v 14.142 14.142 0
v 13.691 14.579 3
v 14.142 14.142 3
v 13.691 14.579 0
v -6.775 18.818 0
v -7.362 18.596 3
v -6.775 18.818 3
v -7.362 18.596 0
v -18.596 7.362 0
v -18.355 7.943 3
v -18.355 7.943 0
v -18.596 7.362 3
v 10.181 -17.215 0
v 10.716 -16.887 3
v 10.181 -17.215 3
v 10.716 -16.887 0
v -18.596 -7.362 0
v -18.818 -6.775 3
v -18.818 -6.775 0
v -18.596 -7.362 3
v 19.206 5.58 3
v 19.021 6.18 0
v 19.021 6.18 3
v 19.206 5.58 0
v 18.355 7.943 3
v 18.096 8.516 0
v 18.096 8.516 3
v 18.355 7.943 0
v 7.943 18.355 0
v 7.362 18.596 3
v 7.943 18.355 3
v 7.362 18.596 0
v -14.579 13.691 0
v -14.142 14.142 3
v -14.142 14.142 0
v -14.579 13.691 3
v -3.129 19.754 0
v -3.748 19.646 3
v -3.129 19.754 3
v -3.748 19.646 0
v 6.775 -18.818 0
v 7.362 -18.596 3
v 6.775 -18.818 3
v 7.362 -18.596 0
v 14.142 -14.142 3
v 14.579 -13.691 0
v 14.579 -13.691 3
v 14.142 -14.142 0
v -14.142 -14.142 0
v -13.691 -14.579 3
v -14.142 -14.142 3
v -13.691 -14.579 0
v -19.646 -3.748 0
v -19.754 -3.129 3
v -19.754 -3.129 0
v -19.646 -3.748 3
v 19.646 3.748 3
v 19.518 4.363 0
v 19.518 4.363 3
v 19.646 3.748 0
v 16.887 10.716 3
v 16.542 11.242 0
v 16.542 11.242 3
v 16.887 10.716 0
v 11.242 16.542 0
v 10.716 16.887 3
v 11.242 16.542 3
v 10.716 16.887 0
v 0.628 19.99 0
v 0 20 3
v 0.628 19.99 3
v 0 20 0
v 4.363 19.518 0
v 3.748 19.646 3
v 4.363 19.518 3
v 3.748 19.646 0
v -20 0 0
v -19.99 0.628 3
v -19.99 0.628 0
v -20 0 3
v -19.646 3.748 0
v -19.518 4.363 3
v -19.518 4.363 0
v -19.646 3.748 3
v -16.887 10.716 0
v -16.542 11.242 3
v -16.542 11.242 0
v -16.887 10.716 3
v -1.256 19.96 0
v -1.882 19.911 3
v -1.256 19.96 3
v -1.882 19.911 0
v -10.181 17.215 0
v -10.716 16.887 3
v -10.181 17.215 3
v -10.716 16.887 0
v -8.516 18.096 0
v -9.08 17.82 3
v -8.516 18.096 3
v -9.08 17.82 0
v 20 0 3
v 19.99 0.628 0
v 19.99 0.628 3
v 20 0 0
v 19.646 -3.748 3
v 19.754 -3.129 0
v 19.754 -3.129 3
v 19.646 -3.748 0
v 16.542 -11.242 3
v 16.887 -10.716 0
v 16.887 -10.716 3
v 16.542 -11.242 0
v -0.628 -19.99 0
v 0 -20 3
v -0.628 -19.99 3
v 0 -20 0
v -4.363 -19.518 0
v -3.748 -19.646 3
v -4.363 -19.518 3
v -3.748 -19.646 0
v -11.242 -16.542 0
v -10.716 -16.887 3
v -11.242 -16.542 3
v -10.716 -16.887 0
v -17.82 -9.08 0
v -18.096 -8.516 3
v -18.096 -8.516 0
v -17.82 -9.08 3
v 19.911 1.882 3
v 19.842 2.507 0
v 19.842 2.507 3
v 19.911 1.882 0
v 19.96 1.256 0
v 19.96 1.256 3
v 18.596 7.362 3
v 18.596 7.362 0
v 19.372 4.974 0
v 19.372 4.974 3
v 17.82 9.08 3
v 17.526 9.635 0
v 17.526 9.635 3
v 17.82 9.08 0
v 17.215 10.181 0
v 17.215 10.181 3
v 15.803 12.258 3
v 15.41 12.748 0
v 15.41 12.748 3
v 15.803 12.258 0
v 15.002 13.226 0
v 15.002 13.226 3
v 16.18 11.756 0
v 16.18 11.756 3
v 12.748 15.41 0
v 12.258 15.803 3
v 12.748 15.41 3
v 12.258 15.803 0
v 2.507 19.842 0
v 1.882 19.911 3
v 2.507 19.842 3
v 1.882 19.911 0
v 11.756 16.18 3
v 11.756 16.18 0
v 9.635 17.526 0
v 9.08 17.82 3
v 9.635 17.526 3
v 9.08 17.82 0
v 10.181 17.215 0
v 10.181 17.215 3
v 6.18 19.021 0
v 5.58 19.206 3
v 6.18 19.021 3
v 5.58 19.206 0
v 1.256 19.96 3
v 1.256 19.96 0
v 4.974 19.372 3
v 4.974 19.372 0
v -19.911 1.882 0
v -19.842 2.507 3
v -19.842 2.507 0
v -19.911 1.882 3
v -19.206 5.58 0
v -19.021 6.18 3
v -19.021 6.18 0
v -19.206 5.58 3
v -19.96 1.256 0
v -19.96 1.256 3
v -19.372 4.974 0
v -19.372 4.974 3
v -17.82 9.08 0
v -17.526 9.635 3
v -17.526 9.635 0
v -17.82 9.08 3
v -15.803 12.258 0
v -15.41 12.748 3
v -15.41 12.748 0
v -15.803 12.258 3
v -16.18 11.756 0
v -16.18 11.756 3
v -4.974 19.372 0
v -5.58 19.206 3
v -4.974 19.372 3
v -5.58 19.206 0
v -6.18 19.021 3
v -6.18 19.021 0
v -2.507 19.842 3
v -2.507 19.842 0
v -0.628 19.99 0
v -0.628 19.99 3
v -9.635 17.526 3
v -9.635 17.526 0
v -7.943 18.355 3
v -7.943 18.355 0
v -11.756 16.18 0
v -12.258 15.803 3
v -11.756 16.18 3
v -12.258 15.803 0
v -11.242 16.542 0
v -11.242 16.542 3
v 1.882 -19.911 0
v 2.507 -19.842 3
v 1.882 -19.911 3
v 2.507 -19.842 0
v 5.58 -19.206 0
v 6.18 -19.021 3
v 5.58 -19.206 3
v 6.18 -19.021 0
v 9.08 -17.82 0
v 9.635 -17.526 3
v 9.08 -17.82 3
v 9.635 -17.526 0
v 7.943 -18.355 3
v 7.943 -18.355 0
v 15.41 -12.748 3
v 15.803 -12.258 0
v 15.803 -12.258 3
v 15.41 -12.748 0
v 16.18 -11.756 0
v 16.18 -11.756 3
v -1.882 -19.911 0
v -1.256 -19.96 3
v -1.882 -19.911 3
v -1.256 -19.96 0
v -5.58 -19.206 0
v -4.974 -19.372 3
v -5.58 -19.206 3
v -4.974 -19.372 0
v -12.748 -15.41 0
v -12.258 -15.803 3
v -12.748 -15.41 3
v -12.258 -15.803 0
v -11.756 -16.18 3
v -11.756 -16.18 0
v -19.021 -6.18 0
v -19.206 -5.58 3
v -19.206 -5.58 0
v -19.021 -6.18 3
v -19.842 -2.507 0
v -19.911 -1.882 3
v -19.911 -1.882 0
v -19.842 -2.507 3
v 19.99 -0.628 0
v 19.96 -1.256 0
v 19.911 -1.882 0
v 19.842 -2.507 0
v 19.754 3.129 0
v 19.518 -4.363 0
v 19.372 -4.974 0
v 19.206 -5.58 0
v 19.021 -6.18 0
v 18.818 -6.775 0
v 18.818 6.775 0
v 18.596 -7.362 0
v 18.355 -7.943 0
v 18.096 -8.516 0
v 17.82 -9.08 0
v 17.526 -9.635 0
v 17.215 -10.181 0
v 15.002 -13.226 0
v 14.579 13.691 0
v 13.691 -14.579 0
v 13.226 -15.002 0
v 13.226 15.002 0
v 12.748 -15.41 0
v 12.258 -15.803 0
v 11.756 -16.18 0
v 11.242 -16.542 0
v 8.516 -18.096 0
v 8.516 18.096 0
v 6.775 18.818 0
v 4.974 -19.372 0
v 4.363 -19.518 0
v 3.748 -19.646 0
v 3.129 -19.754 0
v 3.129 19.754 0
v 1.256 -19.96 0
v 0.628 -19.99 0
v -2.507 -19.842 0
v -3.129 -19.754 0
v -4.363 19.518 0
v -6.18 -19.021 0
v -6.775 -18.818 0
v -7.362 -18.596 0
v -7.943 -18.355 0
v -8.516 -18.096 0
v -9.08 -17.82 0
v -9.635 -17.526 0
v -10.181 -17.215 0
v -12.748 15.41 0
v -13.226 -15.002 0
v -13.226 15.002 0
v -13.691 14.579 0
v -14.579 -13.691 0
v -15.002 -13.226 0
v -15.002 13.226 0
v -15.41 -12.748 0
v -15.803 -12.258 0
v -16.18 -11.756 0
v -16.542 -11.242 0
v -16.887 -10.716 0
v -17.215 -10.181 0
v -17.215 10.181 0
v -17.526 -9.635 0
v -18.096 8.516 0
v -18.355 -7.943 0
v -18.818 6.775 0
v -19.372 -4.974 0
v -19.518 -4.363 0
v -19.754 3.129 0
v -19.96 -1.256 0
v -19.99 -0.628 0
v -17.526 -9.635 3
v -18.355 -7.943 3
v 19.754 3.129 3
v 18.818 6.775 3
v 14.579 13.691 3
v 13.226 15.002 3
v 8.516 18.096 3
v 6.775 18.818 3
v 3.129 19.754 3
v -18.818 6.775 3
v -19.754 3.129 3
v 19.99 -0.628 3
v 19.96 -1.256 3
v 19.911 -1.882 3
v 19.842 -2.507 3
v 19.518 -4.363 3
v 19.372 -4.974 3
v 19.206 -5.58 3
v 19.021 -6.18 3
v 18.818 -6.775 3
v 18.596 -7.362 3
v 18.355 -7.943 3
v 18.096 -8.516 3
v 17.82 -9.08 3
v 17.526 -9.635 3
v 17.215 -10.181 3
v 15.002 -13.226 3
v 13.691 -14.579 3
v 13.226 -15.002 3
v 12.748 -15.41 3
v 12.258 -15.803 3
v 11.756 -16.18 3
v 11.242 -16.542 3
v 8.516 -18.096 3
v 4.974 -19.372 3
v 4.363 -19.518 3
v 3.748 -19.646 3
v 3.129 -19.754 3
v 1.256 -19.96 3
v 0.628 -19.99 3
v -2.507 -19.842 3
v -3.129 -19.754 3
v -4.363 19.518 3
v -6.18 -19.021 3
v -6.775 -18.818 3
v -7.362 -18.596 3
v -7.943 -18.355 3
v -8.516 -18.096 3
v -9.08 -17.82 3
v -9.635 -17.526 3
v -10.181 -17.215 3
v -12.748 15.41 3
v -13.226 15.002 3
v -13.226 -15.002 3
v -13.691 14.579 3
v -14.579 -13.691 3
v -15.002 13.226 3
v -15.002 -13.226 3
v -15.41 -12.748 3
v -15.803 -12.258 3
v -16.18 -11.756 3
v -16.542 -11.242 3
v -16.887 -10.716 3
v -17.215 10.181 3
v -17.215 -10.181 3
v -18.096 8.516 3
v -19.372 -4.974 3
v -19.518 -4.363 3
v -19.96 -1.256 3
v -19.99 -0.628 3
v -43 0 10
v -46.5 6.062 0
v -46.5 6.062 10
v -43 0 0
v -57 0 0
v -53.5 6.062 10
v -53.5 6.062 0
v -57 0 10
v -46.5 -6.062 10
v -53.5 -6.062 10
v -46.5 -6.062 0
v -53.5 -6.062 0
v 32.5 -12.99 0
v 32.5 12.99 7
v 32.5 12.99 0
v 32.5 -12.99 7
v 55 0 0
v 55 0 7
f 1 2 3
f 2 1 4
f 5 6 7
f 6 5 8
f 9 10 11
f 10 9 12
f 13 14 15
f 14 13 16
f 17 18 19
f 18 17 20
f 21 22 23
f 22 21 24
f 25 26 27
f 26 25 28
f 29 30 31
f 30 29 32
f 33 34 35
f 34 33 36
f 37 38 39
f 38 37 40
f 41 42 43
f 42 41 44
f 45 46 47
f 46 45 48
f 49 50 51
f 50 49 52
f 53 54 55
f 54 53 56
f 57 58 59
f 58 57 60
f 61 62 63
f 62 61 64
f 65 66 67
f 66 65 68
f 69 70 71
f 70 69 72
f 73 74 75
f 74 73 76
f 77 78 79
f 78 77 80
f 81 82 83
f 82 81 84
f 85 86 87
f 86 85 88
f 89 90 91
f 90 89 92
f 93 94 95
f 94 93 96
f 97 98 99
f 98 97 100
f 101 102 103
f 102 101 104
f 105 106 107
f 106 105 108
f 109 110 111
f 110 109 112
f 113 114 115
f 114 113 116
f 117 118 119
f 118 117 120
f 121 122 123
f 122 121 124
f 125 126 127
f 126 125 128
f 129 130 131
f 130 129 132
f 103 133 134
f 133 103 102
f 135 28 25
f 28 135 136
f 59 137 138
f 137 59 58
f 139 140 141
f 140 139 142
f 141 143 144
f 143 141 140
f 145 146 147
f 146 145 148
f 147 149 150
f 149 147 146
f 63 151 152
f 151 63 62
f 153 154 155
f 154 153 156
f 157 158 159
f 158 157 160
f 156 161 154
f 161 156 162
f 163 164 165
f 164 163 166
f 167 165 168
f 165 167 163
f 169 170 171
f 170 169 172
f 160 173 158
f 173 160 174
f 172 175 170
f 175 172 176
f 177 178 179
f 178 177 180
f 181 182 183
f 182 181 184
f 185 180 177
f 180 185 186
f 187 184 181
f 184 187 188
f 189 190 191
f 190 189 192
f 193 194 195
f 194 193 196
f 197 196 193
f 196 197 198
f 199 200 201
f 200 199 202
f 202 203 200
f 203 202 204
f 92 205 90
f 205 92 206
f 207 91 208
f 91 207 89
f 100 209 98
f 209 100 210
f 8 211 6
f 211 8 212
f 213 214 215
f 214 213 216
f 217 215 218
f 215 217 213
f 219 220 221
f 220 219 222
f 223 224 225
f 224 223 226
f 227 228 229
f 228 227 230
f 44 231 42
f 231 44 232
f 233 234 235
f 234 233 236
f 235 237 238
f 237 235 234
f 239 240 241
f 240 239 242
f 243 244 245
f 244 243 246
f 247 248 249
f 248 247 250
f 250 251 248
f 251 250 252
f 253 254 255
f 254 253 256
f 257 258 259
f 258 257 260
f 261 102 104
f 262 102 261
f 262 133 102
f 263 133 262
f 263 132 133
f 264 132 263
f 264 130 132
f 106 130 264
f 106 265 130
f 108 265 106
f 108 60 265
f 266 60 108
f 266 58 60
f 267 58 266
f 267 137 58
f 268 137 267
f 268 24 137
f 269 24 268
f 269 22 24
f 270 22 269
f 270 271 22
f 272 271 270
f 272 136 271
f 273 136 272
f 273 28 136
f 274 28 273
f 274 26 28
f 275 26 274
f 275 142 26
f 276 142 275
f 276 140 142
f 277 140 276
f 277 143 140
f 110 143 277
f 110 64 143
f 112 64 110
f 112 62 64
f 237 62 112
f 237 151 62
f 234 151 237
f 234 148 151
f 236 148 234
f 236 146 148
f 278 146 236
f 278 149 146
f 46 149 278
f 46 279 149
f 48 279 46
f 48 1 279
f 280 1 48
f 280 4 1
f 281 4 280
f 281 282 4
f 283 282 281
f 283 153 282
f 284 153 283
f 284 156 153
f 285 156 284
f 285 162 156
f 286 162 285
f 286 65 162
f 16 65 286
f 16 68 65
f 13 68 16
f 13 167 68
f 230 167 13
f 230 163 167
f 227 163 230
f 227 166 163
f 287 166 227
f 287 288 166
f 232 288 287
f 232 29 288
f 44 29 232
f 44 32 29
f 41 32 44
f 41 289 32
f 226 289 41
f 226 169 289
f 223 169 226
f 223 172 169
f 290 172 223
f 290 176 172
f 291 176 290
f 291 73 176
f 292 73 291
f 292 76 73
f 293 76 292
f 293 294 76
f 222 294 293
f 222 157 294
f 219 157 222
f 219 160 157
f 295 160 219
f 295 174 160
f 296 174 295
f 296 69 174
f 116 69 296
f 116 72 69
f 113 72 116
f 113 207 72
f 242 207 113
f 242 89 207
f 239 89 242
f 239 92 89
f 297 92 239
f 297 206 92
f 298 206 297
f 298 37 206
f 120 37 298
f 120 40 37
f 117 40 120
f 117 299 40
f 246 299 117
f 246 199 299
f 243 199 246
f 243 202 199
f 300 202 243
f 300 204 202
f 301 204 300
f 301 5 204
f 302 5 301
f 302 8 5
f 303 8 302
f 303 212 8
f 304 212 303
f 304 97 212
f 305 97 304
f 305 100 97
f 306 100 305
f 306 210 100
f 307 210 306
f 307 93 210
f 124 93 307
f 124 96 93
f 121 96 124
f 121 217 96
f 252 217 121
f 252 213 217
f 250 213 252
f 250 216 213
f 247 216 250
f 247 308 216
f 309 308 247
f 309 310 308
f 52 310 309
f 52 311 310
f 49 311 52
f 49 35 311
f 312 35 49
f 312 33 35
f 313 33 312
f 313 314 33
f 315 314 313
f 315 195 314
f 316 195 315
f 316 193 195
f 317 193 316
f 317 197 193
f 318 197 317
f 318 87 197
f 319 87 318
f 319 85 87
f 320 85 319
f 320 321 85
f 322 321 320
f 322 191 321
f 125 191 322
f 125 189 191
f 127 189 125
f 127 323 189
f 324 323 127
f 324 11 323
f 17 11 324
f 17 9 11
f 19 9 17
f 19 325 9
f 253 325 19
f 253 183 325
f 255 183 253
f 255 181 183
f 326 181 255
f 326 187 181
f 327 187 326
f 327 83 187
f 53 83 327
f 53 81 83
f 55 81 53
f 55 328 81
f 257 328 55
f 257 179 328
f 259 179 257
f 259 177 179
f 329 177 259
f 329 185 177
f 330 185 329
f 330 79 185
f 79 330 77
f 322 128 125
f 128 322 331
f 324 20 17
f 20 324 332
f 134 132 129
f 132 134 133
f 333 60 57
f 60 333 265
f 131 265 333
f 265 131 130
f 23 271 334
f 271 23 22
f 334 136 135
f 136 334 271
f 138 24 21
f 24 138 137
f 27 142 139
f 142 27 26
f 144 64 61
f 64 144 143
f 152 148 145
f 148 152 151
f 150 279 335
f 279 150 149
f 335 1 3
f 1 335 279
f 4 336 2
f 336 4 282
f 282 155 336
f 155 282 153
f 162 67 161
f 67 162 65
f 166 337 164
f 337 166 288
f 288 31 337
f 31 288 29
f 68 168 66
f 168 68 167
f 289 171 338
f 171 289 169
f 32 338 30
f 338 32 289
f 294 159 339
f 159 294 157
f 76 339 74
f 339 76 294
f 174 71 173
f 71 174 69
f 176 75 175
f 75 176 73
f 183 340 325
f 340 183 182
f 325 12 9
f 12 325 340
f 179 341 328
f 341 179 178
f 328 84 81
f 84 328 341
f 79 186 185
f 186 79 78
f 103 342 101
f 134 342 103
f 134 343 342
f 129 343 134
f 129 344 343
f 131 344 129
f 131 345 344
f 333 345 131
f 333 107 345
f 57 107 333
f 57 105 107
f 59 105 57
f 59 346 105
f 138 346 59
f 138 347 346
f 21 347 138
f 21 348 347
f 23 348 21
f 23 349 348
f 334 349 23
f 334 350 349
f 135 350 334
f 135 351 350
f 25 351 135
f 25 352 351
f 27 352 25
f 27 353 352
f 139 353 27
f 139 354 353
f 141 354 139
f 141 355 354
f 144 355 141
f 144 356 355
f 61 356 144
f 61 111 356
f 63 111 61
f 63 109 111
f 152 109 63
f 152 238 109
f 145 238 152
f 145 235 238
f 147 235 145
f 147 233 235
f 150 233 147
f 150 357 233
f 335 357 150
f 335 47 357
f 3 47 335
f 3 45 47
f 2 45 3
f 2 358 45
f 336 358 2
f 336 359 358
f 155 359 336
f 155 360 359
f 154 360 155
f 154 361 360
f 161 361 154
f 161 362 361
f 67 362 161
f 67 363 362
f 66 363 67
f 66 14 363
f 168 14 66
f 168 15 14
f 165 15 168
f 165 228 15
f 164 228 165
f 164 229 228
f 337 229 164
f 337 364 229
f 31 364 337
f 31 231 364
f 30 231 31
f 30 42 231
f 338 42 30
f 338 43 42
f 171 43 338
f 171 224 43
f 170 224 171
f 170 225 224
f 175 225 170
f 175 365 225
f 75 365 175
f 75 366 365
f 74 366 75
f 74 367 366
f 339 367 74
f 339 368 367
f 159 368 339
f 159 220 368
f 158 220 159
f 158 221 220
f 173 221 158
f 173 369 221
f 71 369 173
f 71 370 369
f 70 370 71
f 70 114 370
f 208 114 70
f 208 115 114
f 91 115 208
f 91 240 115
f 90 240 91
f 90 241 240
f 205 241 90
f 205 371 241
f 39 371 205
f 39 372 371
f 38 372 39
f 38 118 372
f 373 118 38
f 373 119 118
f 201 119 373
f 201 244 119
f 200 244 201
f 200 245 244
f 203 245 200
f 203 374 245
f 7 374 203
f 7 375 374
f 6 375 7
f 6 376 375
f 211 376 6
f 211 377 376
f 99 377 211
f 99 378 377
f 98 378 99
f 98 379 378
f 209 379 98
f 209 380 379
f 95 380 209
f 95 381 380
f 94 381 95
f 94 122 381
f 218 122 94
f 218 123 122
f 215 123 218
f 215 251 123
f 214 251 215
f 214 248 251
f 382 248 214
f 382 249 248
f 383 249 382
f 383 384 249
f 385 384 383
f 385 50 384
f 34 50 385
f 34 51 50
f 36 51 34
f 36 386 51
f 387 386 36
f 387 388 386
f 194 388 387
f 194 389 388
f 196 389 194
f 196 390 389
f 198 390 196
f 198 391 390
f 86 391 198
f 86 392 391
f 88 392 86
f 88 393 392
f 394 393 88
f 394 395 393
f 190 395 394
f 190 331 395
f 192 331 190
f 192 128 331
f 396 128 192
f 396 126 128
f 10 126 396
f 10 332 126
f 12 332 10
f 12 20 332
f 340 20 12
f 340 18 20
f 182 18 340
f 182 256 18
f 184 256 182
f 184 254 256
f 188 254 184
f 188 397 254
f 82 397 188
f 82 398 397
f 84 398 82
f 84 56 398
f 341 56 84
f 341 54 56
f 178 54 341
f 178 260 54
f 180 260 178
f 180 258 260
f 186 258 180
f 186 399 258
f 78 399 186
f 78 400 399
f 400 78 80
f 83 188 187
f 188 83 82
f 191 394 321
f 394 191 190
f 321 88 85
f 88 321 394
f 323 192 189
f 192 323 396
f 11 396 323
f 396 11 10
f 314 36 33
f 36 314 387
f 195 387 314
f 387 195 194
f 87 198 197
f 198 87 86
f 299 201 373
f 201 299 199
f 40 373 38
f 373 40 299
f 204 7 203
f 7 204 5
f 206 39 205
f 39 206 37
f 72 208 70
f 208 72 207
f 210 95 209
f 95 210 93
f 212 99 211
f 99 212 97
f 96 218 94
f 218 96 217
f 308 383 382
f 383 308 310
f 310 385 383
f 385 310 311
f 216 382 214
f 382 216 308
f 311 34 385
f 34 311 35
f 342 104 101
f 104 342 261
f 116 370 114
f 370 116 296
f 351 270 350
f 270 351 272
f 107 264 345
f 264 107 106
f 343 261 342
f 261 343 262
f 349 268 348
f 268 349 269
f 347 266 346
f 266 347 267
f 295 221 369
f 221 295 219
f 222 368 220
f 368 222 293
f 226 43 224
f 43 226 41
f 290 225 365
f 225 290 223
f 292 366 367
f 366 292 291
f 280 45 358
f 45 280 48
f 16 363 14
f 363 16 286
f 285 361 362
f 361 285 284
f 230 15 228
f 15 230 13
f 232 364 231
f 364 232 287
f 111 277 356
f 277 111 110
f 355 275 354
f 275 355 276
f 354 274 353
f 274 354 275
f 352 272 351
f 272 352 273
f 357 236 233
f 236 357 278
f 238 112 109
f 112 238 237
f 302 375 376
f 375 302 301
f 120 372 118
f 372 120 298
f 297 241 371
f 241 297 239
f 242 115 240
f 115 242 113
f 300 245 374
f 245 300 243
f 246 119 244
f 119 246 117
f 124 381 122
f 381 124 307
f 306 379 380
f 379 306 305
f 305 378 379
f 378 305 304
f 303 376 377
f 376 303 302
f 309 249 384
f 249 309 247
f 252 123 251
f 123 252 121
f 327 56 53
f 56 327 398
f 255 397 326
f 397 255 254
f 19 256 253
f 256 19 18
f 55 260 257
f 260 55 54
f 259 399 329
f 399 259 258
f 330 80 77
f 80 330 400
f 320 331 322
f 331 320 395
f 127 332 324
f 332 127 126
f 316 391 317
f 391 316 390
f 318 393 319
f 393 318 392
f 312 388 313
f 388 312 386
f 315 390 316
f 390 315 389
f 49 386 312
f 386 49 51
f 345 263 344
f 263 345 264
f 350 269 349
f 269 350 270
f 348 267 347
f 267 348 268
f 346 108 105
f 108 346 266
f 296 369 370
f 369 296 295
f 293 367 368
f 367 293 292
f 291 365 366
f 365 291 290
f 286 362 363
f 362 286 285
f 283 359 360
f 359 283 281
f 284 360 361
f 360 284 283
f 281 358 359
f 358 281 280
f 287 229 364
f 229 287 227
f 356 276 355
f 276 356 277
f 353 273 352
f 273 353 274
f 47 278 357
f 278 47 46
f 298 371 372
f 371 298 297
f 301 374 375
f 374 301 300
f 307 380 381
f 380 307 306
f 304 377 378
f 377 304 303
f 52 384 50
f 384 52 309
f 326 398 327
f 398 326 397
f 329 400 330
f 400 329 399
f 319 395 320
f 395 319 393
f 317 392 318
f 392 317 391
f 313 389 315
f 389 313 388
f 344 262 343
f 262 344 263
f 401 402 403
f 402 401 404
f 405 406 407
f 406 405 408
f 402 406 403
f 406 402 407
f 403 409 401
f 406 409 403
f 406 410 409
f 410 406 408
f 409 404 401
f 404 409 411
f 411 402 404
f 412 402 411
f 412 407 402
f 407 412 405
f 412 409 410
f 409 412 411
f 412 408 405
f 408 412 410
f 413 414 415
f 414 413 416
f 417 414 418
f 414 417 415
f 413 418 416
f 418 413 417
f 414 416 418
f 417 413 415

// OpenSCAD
// Moneda en el centro

color("red")
    cylinder(h=3,r=20,$fn=200);
    
// hexágono en los negativos

color("blue")
    translate([-50,0,0])
        cylinder(h=10,r=7,$fn=6);
        
        
        
// triangulo en los positivo

color("green")
    translate([40,0,0])
        cylinder(h=7,r=15,$fn=3);
